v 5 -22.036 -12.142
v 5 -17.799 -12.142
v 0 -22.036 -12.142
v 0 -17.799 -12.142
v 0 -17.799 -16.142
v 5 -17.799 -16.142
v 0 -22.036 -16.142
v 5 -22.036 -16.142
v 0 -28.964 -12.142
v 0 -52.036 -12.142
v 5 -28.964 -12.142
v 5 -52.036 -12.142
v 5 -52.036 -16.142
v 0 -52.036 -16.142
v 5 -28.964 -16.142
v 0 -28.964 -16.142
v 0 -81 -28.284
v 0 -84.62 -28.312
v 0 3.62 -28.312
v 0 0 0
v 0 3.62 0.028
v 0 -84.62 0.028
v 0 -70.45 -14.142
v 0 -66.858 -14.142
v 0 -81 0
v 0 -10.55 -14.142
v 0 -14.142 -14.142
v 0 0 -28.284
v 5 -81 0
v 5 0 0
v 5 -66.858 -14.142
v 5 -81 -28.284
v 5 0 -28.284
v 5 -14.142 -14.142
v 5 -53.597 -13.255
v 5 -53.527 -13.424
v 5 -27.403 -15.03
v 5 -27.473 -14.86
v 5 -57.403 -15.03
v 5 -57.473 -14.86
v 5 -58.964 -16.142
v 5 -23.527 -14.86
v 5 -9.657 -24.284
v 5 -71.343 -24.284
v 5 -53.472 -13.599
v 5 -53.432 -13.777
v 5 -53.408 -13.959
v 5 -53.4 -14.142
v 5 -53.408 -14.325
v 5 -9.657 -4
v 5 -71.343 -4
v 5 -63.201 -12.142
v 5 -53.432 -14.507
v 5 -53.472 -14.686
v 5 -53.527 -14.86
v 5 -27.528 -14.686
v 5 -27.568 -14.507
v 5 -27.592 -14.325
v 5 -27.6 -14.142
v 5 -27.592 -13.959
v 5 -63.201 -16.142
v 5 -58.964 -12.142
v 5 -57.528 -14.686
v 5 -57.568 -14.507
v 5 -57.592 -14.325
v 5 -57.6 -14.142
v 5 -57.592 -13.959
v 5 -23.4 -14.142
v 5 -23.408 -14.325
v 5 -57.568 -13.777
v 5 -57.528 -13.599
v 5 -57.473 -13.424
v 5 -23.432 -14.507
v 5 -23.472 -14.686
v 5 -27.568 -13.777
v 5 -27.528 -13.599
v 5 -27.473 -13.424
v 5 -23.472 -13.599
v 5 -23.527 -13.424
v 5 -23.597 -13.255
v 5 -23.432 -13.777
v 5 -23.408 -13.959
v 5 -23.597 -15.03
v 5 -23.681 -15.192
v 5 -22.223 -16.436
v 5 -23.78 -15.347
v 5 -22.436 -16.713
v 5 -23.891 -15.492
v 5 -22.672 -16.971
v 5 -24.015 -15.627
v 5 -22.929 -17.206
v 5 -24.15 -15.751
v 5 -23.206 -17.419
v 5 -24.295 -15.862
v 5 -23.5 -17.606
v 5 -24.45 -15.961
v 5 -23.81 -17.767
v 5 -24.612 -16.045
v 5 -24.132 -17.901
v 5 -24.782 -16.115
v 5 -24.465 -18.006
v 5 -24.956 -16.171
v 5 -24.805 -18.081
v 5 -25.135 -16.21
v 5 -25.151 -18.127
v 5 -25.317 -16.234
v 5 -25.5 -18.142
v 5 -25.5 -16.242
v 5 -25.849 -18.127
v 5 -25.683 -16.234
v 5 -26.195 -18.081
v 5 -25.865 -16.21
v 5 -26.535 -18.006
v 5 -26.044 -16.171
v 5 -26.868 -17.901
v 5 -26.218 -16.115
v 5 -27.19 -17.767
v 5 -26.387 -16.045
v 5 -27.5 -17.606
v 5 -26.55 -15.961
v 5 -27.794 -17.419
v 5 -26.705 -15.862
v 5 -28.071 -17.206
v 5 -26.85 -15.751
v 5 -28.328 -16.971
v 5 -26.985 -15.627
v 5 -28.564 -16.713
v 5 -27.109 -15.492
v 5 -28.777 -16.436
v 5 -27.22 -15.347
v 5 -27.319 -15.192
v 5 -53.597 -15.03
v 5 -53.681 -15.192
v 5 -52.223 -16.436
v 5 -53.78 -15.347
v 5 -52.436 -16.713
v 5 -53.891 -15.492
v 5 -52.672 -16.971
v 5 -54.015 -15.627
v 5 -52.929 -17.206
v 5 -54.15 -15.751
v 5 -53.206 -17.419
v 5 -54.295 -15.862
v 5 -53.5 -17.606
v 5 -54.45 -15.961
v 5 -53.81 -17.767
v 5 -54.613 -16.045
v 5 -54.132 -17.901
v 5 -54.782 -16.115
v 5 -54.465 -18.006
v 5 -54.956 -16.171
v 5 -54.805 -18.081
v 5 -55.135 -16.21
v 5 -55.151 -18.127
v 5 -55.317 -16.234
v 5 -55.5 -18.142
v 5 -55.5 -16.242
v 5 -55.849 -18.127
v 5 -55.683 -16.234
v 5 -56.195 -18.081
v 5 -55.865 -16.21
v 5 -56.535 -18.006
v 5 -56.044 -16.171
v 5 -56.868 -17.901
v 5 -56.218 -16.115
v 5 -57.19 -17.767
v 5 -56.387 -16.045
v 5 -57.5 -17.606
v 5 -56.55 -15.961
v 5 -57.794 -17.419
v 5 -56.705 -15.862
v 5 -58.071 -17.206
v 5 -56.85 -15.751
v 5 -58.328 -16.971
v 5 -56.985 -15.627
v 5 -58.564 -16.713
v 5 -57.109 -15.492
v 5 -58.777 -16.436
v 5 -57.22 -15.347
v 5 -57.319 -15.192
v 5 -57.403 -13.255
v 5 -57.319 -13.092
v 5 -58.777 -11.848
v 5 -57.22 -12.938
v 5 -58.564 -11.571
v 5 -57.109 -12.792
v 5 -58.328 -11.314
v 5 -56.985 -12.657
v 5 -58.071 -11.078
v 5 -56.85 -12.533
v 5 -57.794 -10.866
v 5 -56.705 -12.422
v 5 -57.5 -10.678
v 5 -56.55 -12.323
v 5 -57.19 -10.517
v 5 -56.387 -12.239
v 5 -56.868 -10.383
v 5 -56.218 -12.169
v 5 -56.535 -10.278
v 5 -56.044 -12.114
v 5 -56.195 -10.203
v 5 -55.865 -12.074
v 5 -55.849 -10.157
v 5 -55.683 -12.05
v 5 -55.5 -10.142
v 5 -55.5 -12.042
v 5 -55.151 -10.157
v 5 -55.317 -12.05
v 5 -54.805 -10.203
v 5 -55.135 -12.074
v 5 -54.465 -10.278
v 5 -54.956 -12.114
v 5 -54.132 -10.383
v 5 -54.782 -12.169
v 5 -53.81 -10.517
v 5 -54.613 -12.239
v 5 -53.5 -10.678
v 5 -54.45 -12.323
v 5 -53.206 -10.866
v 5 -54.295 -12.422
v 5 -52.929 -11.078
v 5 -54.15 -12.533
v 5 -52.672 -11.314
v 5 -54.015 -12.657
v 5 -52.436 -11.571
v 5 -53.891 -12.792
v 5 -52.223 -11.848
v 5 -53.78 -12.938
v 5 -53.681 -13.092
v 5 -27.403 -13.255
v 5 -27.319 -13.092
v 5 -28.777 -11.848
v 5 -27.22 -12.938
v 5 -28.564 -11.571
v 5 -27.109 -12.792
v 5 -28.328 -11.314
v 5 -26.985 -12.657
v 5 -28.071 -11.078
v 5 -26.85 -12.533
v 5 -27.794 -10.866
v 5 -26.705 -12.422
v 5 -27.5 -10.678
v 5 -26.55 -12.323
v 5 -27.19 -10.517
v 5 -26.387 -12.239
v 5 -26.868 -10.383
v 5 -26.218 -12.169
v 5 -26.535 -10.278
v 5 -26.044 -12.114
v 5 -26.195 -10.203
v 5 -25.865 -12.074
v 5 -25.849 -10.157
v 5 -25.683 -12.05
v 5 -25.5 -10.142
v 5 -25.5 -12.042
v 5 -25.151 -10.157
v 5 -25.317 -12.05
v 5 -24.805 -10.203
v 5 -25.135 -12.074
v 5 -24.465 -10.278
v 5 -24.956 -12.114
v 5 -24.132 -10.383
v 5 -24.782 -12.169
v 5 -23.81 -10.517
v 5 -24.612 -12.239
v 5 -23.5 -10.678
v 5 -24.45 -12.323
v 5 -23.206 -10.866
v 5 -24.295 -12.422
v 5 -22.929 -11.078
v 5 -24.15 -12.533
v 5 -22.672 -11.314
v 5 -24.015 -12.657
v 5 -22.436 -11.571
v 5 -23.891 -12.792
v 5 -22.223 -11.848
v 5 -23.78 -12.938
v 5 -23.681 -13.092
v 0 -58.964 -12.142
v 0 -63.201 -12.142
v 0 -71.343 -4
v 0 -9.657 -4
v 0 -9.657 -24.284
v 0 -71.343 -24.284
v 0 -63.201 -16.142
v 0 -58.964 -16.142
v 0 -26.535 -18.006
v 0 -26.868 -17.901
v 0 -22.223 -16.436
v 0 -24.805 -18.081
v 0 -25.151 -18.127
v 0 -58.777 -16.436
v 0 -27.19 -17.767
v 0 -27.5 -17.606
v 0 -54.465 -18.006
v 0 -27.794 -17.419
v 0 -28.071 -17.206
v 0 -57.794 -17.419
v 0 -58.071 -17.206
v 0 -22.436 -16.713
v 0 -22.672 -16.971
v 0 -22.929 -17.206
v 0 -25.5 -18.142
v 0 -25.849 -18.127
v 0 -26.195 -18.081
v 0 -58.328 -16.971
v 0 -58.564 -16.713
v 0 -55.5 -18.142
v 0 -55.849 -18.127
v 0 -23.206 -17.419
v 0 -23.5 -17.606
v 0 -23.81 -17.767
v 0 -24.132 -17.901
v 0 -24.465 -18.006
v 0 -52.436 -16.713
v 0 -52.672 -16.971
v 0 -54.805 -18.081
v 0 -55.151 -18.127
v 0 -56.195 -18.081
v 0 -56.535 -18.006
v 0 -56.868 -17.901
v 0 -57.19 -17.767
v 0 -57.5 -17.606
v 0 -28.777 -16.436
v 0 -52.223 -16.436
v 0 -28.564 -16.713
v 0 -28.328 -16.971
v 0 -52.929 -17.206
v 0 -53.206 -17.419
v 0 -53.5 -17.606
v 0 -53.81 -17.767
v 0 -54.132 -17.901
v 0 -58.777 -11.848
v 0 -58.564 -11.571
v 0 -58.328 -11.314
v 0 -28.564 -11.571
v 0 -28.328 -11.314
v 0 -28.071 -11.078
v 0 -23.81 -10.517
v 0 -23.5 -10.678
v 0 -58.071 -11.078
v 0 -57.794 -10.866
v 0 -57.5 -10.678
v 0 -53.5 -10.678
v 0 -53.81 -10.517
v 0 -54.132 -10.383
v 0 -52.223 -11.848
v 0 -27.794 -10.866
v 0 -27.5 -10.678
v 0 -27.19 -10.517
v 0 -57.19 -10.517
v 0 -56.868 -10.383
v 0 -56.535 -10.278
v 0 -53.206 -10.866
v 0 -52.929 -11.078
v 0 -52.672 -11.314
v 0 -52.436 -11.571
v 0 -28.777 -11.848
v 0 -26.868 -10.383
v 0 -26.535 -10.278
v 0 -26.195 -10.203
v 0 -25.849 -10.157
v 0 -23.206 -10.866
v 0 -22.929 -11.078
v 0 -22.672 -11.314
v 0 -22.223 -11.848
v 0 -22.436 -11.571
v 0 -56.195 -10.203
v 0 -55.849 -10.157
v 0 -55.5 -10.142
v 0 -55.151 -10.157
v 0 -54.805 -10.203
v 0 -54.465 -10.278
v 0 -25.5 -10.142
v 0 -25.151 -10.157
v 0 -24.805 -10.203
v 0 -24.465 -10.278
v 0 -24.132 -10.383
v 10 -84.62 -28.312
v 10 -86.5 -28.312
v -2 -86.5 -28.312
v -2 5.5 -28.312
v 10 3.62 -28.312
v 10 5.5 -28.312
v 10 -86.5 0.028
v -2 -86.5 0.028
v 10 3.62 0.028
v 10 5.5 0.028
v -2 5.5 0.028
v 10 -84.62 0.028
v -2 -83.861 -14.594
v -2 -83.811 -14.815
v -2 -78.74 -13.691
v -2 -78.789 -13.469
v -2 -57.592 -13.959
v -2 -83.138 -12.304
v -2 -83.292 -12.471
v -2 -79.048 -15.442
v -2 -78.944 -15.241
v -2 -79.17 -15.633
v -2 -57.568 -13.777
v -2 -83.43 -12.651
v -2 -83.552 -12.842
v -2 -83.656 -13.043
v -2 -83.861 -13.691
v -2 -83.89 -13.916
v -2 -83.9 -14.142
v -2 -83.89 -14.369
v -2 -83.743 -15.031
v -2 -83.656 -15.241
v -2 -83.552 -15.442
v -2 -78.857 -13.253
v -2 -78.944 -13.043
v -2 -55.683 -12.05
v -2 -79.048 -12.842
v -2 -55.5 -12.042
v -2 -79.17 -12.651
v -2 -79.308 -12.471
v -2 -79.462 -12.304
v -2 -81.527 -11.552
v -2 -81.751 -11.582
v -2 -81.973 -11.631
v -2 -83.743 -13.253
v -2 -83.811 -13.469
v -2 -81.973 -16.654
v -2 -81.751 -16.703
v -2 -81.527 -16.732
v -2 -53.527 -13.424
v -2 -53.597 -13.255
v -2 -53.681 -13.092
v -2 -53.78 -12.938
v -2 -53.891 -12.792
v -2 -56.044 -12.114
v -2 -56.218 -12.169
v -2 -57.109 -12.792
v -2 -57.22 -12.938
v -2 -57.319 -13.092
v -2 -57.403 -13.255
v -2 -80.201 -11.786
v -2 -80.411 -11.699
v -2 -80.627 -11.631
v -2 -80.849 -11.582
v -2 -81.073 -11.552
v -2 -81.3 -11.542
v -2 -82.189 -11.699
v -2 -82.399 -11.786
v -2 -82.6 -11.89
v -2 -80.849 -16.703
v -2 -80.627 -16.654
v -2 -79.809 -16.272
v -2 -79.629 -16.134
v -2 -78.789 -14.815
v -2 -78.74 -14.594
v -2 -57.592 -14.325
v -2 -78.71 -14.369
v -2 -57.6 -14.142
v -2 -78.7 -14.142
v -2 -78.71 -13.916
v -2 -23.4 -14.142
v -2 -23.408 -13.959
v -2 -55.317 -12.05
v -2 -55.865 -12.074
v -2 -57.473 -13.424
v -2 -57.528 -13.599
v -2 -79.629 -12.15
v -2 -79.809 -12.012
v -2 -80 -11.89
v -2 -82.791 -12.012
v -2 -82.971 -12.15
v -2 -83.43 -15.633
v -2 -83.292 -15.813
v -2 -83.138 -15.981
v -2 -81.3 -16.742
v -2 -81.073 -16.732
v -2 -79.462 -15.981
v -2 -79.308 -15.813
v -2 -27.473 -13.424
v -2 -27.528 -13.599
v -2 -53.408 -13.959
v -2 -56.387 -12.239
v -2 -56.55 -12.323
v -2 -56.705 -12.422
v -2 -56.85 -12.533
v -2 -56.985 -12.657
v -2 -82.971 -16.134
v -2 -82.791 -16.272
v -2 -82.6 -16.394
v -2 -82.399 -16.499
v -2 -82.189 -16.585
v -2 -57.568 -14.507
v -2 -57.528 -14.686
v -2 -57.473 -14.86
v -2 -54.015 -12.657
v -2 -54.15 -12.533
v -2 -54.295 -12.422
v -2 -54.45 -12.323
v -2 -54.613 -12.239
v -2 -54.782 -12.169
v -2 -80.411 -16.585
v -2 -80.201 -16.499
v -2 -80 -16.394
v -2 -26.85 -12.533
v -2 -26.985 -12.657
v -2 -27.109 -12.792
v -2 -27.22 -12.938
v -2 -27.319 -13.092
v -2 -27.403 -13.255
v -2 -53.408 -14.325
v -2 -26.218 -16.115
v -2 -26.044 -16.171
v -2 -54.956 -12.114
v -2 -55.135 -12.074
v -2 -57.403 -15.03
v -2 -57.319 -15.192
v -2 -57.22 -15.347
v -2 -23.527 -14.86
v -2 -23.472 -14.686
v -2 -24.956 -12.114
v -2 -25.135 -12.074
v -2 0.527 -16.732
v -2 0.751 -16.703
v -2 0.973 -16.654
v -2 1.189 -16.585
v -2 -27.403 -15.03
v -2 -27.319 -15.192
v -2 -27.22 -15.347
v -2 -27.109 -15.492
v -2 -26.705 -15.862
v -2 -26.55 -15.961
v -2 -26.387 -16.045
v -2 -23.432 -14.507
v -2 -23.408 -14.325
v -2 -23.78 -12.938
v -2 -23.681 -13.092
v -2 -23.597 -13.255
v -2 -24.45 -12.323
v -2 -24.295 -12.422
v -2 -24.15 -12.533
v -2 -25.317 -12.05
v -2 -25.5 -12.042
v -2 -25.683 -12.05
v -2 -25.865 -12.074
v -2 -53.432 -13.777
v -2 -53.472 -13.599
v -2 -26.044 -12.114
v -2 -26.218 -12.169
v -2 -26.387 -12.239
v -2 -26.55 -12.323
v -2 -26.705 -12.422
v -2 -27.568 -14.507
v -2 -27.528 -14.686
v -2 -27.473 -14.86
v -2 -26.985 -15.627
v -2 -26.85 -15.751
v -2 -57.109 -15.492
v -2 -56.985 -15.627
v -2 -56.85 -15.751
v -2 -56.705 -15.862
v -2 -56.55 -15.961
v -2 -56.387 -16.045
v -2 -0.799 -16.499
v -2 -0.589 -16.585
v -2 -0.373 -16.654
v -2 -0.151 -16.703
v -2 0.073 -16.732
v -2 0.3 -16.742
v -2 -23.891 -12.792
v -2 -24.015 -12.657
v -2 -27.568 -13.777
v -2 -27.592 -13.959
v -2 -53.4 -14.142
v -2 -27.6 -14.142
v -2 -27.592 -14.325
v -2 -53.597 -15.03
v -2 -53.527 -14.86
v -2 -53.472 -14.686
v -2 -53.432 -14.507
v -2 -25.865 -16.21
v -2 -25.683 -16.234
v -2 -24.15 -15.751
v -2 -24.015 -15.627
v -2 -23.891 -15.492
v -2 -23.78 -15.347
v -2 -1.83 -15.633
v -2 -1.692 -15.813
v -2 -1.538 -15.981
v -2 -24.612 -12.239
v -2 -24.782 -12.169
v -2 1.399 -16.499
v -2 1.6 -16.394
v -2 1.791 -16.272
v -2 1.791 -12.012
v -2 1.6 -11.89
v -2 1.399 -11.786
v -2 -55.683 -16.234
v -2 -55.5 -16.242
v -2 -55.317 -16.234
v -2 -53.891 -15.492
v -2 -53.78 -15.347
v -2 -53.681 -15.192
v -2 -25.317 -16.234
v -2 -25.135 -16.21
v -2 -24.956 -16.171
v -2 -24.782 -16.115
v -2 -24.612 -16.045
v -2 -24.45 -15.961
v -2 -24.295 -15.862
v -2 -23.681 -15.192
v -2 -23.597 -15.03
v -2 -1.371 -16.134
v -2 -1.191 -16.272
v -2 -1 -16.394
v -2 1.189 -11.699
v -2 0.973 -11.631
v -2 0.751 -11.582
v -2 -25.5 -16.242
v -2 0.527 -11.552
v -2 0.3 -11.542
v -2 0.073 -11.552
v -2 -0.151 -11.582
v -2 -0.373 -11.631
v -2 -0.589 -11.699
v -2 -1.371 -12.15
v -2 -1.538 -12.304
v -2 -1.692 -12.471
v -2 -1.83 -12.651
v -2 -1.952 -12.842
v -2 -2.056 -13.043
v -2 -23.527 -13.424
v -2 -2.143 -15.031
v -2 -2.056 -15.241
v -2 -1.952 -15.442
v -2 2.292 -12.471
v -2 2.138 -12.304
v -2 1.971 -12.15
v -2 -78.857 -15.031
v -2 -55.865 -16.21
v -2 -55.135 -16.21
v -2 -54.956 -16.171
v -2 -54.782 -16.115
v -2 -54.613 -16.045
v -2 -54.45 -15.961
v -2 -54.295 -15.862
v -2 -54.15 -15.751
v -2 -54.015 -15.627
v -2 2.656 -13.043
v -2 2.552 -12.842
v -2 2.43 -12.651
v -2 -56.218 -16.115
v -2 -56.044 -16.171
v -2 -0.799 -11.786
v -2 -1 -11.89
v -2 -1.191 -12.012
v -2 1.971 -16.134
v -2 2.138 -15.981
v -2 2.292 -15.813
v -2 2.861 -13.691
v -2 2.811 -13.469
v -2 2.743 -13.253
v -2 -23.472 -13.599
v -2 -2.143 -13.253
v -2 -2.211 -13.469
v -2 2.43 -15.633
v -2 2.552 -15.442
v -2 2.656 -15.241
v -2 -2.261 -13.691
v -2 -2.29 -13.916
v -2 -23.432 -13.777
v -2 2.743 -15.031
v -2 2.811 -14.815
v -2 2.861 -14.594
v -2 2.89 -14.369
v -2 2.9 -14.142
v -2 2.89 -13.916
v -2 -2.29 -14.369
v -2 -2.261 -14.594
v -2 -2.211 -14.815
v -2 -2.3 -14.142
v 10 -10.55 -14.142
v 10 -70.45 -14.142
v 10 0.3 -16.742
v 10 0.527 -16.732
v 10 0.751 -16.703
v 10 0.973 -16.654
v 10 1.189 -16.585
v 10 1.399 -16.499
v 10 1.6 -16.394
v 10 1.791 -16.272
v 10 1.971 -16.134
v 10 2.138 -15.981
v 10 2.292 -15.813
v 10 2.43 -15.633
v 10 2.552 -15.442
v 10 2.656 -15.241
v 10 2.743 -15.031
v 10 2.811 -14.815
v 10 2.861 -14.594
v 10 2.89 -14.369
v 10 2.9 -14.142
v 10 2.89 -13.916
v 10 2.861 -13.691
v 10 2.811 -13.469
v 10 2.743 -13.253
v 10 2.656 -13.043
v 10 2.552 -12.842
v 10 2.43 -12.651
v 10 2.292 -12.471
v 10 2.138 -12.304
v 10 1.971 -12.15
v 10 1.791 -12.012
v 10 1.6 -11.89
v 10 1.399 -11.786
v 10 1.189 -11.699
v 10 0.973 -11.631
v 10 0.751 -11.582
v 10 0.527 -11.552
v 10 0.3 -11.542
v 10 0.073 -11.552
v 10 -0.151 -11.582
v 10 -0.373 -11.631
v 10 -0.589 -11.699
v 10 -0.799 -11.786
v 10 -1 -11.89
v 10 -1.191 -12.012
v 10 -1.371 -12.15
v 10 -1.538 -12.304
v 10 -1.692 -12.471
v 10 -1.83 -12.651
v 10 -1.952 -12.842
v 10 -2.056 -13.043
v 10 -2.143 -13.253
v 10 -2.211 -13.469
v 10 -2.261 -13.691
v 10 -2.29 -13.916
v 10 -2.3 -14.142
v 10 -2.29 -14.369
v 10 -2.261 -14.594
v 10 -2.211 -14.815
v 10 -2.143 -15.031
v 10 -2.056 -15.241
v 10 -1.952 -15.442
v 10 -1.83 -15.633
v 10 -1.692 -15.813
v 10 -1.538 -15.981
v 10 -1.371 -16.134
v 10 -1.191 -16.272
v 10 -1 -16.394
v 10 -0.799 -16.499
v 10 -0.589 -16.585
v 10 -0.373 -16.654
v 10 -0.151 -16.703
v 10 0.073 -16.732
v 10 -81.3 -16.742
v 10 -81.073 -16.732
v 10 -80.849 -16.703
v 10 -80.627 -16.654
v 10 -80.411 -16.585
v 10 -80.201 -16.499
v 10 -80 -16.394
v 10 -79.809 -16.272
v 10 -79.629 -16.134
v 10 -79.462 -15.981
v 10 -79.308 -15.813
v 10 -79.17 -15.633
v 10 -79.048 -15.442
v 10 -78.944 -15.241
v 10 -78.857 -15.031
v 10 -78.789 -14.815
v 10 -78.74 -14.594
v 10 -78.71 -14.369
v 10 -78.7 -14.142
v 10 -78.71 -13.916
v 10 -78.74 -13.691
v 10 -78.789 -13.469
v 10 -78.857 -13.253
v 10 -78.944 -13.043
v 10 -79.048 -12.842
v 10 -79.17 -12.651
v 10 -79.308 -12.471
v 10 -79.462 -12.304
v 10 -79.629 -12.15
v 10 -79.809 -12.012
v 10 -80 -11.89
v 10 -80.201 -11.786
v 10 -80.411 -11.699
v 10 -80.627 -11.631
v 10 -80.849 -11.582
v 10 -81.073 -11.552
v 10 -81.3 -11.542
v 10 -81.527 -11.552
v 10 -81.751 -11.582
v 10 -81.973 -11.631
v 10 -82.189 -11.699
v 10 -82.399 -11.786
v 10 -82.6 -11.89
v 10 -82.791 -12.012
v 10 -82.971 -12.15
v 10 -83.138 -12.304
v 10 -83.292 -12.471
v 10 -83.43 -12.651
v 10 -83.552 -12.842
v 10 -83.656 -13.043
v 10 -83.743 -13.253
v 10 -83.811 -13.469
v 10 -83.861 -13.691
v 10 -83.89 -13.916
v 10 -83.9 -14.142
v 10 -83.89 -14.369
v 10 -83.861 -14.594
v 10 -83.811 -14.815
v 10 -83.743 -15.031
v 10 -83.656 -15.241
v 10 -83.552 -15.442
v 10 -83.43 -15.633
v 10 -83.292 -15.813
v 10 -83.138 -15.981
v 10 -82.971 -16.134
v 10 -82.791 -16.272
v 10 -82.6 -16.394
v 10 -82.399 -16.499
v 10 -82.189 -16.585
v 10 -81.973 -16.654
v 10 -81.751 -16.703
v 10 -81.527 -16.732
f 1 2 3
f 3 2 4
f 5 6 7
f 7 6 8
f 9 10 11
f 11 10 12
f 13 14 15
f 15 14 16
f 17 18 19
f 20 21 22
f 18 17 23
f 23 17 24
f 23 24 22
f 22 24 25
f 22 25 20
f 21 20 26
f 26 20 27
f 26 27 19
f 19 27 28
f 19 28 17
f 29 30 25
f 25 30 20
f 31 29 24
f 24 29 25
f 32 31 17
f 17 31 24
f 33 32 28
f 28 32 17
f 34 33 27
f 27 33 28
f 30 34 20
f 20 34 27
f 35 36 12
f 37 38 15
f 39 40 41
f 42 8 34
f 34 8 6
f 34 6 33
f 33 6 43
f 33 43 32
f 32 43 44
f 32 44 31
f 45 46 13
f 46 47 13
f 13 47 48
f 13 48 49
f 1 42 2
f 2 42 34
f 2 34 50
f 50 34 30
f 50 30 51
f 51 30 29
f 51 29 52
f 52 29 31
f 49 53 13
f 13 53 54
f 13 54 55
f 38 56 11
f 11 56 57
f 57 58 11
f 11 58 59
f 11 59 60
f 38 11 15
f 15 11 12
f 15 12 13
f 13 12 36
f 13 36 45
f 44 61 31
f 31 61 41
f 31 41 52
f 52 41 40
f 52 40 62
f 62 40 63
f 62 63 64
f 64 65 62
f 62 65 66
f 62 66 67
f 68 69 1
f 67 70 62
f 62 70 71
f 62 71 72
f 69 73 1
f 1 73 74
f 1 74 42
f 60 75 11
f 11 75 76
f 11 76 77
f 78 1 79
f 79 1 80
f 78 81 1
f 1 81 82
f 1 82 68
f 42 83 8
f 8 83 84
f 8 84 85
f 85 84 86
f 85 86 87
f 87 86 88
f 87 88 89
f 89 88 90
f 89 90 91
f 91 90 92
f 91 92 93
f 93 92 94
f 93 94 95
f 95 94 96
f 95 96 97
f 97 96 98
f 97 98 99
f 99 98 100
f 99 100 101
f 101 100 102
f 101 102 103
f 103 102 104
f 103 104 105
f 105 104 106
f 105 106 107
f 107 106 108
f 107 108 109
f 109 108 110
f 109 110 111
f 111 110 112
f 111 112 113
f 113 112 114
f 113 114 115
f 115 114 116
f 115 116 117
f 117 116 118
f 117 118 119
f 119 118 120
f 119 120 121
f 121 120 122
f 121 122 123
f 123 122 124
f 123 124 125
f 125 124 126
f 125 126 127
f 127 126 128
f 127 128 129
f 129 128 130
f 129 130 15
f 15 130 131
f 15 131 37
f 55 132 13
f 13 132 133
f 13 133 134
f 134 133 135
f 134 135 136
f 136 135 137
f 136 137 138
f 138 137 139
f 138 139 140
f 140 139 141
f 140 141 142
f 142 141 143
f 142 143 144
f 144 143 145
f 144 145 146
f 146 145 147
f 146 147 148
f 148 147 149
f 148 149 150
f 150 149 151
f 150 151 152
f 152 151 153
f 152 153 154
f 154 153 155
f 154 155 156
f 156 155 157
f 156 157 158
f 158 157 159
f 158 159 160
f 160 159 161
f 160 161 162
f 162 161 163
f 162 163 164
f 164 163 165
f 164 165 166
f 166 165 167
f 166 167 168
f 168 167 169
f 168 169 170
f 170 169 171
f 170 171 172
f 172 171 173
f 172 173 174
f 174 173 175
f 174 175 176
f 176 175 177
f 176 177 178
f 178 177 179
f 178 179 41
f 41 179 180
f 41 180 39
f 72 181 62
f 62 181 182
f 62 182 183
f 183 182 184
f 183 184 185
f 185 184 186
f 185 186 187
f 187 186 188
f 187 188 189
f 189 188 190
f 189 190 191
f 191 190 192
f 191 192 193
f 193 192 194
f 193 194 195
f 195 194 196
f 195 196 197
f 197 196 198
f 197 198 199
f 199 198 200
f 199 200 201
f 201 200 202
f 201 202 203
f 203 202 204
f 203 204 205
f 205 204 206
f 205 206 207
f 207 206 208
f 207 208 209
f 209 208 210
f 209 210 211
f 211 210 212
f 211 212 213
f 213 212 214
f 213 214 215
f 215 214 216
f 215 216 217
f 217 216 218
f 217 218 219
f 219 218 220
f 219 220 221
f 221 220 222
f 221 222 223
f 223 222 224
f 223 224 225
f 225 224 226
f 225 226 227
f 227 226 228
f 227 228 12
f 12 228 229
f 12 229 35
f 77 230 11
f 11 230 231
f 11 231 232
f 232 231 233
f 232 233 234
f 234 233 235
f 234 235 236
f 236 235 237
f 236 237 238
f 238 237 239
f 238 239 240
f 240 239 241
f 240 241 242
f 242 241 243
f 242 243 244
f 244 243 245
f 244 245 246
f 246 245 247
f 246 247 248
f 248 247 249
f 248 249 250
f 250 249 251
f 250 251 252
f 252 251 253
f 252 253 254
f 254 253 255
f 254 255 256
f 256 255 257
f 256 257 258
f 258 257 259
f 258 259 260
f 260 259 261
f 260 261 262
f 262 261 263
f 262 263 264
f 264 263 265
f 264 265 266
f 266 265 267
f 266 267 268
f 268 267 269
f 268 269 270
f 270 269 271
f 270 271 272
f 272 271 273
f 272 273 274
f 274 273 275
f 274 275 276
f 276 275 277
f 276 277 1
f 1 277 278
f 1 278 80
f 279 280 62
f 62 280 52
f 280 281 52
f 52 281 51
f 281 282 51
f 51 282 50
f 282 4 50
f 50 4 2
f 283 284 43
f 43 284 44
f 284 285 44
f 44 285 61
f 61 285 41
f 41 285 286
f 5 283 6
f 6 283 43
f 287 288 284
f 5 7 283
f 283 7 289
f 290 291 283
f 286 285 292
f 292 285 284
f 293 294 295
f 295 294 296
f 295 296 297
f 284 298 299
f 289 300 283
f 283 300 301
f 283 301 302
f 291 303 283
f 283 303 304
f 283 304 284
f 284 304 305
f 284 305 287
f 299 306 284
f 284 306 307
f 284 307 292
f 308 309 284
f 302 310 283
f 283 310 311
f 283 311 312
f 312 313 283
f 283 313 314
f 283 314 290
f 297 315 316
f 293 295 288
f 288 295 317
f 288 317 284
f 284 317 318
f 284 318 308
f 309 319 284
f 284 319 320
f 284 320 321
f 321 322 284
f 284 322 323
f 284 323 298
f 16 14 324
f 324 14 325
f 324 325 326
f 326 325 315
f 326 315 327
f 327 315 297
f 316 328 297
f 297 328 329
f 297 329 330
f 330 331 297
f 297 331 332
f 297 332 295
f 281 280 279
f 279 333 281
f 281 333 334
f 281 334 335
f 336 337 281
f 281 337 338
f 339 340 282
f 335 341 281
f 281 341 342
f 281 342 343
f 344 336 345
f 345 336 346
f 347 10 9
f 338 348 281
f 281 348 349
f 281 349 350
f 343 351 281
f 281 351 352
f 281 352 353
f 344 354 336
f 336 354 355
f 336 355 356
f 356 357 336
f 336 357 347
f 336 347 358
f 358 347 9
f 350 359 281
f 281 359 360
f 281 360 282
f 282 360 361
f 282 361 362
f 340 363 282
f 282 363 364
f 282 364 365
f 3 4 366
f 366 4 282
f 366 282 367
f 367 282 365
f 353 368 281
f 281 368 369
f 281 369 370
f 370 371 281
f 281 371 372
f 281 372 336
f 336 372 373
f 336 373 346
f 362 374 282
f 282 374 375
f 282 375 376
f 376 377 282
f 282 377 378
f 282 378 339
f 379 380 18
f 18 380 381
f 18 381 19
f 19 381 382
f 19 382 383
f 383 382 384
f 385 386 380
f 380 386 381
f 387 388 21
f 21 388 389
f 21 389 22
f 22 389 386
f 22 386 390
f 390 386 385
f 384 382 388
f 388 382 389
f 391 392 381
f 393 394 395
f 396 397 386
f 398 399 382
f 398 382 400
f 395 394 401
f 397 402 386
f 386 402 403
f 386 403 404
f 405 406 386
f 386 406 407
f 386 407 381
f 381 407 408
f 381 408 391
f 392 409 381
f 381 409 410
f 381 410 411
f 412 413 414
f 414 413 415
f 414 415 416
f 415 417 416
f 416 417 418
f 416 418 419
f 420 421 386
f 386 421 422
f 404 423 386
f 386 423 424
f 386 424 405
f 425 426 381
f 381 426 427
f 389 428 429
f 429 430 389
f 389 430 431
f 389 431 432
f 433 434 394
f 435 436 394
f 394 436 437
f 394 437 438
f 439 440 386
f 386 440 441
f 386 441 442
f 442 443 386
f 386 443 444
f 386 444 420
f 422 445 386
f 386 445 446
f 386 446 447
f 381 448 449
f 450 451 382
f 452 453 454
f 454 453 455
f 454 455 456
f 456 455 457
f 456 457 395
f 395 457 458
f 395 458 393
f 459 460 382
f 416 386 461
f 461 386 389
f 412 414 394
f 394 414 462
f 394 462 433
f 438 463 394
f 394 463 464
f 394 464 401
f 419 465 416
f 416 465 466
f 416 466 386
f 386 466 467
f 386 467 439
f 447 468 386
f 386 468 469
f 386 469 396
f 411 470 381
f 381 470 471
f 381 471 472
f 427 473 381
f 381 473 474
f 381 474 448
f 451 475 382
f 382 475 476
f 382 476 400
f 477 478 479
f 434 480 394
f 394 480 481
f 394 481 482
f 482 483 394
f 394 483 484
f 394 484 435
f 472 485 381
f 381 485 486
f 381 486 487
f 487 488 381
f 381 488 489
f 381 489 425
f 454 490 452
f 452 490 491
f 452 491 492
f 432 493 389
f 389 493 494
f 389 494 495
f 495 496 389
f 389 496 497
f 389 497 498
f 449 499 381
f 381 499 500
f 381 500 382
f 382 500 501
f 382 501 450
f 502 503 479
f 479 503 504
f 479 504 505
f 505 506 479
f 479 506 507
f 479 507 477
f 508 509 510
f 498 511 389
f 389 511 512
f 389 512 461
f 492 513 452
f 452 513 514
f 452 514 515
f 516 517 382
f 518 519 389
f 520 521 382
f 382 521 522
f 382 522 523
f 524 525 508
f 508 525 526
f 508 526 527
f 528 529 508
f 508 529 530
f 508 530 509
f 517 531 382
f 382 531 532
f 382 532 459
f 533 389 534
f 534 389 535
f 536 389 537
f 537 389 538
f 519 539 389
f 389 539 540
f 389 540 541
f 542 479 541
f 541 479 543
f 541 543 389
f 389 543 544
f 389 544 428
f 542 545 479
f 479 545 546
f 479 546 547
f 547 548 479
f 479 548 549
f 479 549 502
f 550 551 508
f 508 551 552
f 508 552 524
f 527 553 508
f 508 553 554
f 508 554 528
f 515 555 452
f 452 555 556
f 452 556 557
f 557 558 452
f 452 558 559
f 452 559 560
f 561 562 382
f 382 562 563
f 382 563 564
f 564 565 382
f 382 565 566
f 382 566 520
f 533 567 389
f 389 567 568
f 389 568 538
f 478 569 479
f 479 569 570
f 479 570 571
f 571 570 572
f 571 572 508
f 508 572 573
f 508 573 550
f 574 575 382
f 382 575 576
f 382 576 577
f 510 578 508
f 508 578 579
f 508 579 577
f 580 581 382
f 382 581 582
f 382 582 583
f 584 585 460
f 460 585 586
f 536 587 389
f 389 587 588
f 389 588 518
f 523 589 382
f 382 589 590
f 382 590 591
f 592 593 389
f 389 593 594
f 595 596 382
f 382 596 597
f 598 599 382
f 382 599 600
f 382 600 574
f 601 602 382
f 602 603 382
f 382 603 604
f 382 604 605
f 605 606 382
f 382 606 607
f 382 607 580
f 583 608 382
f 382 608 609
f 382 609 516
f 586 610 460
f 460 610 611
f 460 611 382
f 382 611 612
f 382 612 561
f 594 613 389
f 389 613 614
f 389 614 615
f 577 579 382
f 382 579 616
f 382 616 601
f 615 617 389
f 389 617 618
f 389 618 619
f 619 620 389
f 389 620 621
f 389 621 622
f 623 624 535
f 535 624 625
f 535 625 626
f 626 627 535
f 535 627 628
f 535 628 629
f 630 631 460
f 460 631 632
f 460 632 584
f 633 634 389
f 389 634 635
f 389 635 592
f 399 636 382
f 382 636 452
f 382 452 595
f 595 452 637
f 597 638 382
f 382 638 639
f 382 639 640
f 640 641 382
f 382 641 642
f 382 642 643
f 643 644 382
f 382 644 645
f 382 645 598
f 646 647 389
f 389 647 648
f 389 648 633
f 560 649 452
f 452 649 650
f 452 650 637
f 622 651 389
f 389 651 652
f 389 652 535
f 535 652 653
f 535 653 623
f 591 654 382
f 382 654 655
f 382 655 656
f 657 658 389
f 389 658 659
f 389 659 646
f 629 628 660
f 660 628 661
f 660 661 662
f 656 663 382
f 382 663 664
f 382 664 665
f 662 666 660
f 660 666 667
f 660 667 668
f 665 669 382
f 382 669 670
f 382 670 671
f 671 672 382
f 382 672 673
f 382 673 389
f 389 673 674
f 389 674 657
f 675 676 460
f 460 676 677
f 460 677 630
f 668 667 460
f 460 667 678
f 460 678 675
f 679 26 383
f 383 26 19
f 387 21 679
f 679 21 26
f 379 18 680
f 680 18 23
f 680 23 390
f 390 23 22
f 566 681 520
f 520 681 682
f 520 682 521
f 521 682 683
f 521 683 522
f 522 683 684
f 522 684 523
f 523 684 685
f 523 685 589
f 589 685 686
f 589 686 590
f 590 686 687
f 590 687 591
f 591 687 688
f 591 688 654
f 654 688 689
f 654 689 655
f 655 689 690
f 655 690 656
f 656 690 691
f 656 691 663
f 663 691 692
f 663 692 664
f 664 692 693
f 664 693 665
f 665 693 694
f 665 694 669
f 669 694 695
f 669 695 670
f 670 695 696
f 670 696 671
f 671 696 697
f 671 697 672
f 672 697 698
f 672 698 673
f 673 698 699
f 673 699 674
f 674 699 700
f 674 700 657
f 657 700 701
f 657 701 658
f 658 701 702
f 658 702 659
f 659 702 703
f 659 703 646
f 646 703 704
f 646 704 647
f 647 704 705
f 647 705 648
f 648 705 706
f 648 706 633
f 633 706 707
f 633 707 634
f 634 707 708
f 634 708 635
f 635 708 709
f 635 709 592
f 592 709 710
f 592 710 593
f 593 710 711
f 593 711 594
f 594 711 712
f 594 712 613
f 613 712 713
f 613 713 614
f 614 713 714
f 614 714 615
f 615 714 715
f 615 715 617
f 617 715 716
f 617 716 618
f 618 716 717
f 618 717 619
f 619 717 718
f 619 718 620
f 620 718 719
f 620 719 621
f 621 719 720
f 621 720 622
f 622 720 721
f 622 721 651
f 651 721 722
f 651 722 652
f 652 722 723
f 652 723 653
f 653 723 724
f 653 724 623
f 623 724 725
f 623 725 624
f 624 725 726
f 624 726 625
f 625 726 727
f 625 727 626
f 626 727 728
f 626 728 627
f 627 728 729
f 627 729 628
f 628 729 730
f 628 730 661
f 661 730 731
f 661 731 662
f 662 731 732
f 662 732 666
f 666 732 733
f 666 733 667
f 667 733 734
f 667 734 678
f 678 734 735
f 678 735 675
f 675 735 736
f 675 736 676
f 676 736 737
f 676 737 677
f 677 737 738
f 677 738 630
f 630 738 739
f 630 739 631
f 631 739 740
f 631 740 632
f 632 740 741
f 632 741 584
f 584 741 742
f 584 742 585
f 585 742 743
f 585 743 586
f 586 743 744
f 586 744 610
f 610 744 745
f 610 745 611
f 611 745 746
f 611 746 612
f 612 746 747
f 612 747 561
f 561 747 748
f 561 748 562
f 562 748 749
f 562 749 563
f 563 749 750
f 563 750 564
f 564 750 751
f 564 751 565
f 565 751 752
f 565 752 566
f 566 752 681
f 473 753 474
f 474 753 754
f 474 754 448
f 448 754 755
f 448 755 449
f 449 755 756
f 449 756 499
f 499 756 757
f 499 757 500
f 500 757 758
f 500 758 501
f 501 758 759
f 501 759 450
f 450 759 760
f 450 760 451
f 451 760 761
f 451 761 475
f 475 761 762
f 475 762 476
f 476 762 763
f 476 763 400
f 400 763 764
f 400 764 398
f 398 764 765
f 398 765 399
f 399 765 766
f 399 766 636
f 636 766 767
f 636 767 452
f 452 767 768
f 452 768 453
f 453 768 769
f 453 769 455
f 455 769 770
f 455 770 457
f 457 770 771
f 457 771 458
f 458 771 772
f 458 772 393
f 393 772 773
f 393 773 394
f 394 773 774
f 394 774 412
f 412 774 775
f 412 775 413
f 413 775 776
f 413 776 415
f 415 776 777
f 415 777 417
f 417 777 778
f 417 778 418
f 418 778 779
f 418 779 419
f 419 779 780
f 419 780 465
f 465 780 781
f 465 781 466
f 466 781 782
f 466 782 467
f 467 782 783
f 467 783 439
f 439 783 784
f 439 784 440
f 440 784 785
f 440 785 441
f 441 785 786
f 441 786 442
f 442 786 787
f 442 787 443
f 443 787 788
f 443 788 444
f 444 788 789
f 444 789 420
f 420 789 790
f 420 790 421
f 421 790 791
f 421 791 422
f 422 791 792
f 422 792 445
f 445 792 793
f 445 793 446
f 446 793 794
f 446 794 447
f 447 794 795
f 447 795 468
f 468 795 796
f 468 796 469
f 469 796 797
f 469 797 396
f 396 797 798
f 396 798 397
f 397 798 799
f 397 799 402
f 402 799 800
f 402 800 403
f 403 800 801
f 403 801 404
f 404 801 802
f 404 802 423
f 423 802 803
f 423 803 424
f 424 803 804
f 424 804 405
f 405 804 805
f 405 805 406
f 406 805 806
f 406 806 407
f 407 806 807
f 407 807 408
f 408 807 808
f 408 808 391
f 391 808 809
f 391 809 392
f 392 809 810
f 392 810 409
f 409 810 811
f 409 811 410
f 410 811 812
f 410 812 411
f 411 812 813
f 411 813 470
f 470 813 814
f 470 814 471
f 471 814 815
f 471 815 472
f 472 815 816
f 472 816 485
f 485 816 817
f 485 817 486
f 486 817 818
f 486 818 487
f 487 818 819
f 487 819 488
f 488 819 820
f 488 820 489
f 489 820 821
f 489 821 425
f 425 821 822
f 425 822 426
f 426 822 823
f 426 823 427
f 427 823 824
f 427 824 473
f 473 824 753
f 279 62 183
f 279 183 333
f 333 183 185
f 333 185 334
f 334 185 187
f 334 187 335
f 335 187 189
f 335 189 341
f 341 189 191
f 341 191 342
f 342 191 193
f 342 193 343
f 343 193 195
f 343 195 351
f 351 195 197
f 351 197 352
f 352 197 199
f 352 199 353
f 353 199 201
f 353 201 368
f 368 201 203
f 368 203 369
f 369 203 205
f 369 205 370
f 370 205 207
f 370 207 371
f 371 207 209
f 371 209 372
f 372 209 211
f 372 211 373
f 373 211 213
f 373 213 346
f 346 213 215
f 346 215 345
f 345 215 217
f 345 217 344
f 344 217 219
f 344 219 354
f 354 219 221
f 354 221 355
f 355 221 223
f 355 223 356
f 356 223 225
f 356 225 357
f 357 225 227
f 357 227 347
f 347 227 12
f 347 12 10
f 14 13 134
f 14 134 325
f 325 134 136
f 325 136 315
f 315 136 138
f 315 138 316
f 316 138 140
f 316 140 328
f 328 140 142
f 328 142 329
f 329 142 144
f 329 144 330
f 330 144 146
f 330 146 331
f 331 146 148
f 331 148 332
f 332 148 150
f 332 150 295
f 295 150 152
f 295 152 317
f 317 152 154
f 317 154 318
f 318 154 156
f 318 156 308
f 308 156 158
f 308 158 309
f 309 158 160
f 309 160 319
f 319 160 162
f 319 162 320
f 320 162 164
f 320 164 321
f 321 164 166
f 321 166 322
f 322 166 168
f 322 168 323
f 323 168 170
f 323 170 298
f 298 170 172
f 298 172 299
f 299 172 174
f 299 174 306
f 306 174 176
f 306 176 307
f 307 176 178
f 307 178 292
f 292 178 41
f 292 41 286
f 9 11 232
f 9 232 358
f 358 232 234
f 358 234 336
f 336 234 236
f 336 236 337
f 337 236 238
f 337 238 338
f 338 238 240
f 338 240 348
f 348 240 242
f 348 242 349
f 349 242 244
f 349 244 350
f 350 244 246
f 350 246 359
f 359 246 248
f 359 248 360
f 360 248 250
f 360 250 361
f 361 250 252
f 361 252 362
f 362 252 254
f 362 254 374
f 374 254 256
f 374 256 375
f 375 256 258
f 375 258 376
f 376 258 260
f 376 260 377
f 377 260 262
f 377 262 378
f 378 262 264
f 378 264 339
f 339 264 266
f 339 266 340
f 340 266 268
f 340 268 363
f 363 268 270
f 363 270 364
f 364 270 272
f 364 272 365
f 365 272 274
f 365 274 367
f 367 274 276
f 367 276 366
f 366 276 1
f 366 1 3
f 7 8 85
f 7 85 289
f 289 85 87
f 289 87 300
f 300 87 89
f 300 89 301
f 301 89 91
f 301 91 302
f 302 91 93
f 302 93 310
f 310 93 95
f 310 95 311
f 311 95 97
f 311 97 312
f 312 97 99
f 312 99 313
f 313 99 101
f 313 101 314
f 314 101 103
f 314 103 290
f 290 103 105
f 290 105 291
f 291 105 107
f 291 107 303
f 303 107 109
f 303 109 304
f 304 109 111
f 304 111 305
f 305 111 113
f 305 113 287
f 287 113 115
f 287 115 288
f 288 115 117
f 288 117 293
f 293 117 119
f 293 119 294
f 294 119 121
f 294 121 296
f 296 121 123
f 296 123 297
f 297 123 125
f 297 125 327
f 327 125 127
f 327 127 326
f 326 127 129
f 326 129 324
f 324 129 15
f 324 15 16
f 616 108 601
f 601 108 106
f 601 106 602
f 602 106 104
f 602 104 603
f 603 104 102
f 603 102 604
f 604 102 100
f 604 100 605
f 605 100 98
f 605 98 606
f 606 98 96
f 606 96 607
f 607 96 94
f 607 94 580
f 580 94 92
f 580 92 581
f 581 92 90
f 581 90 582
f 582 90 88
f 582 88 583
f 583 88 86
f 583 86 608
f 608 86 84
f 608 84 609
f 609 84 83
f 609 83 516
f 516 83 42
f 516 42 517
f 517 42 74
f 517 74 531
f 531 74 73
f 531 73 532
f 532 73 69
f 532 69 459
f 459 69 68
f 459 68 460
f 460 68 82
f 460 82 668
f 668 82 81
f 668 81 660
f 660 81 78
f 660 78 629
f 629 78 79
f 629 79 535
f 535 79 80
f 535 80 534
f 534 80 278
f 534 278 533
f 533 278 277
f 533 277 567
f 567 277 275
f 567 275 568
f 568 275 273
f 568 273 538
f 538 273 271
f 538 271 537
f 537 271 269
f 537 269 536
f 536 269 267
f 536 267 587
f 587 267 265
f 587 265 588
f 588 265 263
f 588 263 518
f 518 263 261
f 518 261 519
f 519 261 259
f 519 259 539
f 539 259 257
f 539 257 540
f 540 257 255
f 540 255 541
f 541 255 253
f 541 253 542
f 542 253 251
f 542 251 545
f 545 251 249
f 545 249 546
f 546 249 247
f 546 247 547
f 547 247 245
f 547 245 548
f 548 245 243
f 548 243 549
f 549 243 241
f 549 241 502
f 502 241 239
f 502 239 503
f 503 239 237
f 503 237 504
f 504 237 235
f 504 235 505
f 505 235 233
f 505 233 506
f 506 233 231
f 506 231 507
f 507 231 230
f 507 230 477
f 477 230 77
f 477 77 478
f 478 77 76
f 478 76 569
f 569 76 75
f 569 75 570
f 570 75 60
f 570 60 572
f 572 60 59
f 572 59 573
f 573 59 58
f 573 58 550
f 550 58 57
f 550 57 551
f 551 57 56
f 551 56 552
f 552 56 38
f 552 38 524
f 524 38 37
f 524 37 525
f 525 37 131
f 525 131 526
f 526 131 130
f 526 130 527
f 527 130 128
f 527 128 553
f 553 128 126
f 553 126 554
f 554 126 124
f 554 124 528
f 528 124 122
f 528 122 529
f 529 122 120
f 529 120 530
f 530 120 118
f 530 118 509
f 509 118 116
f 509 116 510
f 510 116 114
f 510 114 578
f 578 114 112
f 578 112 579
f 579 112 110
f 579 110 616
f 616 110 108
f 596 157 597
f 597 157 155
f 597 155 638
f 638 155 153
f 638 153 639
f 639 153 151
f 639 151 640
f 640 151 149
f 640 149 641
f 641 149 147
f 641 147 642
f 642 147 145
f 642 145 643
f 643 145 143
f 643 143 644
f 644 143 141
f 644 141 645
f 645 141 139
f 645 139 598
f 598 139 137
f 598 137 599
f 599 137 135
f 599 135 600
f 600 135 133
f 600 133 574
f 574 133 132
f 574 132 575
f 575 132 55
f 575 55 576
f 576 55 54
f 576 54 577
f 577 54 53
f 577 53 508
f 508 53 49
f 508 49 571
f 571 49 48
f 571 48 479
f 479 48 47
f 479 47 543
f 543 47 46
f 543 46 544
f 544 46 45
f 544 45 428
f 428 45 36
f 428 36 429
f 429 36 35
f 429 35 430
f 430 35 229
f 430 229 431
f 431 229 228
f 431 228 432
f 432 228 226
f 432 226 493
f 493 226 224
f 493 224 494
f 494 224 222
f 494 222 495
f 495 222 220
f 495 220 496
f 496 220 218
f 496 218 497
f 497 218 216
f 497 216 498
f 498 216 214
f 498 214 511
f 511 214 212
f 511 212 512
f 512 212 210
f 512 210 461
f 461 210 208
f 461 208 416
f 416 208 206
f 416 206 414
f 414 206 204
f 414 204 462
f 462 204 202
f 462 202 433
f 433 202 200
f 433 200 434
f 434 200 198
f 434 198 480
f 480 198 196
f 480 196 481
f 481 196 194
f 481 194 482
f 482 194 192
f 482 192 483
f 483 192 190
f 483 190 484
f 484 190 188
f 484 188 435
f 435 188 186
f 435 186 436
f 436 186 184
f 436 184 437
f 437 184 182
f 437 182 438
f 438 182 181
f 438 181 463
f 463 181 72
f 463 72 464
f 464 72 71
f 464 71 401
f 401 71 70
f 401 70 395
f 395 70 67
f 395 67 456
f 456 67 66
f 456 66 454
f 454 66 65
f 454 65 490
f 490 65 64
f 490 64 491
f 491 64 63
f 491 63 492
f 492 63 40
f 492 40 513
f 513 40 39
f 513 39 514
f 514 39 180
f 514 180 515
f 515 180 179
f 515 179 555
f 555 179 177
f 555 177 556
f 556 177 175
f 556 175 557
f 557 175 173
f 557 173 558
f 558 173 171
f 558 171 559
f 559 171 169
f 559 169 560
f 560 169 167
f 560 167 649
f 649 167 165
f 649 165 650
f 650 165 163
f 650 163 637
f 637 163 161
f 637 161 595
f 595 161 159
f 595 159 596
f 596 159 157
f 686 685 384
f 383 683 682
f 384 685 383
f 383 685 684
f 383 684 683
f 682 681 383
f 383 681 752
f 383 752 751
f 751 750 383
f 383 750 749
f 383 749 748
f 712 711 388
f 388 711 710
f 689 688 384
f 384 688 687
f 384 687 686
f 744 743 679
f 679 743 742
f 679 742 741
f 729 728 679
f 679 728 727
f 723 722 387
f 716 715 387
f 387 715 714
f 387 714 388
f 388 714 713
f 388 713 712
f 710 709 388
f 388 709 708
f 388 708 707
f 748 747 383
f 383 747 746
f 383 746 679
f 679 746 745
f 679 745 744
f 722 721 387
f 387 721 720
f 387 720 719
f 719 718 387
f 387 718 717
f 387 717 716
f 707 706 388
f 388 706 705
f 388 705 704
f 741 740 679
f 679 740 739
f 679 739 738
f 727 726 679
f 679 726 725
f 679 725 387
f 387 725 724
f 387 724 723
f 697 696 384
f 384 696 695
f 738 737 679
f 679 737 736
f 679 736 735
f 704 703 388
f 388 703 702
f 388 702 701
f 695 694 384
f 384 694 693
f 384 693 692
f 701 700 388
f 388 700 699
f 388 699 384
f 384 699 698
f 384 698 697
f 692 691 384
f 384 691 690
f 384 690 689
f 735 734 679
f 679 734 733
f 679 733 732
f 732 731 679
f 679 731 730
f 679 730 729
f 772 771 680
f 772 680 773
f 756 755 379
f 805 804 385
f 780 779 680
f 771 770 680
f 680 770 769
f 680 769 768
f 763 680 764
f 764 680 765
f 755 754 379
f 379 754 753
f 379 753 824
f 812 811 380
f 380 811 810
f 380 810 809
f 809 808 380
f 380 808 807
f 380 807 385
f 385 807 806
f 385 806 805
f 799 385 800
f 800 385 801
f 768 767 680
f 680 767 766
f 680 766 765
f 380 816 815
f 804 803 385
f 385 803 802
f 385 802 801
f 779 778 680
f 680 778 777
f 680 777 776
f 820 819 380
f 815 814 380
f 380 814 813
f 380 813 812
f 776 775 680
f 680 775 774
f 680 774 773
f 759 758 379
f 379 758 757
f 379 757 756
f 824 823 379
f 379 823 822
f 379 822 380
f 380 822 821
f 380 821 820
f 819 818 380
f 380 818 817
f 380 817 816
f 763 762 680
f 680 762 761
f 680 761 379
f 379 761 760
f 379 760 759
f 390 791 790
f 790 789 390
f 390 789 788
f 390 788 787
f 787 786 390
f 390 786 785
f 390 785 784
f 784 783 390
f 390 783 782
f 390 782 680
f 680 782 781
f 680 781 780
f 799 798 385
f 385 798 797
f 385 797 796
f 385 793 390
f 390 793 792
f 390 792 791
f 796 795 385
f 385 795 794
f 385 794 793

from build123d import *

# Parameters (mm, degrees)
BOSS_EXTRUDE1_DEPTH   = 5
CUT_EXTRUDE1_DEPTH    = 86.941840799
BOSS_EXTRUDE6_DEPTH   = 5
BOSS_EXTRUDE6_2_DEPTH = 5
SKETCH4_W             = 28.34
SKETCH4_H             = 92
BOSS_EXTRUDE7_DEPTH   = 2
SKETCH5_R             = 2.6
CUT_EXTRUDE2_DEPTH    = 92.284319703
BOSS_EXTRUDE8_REACH   = 93.284
SKETCH6_R             = 4
SKETCH7_R             = 2.1
CUT_EXTRUDE4_DEPTH    = 92.284319703
BOSS_EXTRUDE9_START   = 5
SKETCH8_R             = 2.6
BOSS_EXTRUDE9_DEPTH   = 5


with BuildPart() as part:
    # Sketch1 → Boss-Extrude1 (new body)
    with BuildSketch(Plane(origin=(0, 0, 0), x_dir=(0, 0, -1), z_dir=(1, 0, 0))):
        Polygon((0, 0), (0, -81), (14.142135624, -66.857864376), (28.284271247, -81), (28.284271247, 0), (14.142135624, -14.142135624), align=None)
    extrude(amount=BOSS_EXTRUDE1_DEPTH)

    # Sketch2 → Cut-Extrude1 (cut, through all)
    with BuildSketch(Plane(origin=(5, 0, 0), x_dir=(0, 0, -1), z_dir=(1, 0, 0))):
        Polygon((4, -71.343145751), (12.142135624, -63.201010127), (12.142135624, -17.798989873), (4, -9.656854249), align=None)
        Polygon((16.142135624, -17.798989873), (16.142135624, -63.201010127), (24.284271247, -71.343145751), (24.284271247, -9.656854249), align=None)
    extrude(amount=-CUT_EXTRUDE1_DEPTH, mode=Mode.SUBTRACT)



with BuildPart() as body_2:
    # Sketch3 → Boss-Extrude6 (new body)
    with BuildSketch(Plane(origin=(5, 0, 0), x_dir=(0, 0, -1), z_dir=(1, 0, 0))):
        Polygon((-0.027864376, 3.619966825), (1.796051224, 1.796051224), (14.142135624, -10.550033175), (26.488220023, 1.796051224), (28.312135624, 3.619966825), (28.312135624, 5.5), (-0.027864376, 5.5), align=None)
    extrude(amount=-BOSS_EXTRUDE6_DEPTH)


with BuildPart() as body_3:
    # Sketch3 → Boss-Extrude6 2 (new body)
    with BuildSketch(Plane(origin=(5, 0, 0), x_dir=(0, 0, -1), z_dir=(1, 0, 0))):
        Polygon((14.142135624, -70.449966825), (1.796051224, -82.796051224), (-0.027864376, -84.619966825), (-0.027864376, -86.5), (28.312135624, -86.5), (28.312135624, -84.619966825), (26.488220023, -82.796051224), align=None)
    extrude(amount=-BOSS_EXTRUDE6_2_DEPTH)


with BuildPart() as part_1:
    add(part.part)

    add(body_2.part)  # Boss-Extrude7 merges body 2

    add(body_3.part)  # Boss-Extrude7 merges body 3
    # Sketch4 → Boss-Extrude7 (add)
    with BuildSketch(Plane.ZY):
        with Locations((-14.142135624, -40.5)):
            Rectangle(SKETCH4_W, SKETCH4_H)
    extrude(amount=BOSS_EXTRUDE7_DEPTH)

    # Sketch5 → Cut-Extrude2 (cut, through all)
    with BuildSketch(Plane(origin=(5, 0, 0), x_dir=(0, 0, -1), z_dir=(1, 0, 0))):
        with Locations((14.142135624, 0.3)):
            Circle(SKETCH5_R)
        with Locations(Location((14.142135624, -81.3, 0), (0, 0, 180))):
            Circle(SKETCH5_R)
    extrude(amount=-CUT_EXTRUDE2_DEPTH, mode=Mode.SUBTRACT)

    # Sketch6 → Boss-Extrude8 (add, up to next)
    with BuildSketch(Plane(origin=(5, 0, 0), x_dir=(0, 0, -1), z_dir=(1, 0, 0)), mode=Mode.PRIVATE) as boss_extrude8_sk1:
        with Locations((14.142135624, -55.5)):
            Circle(SKETCH6_R)
    boss_extrude8_tool1 = extrude(boss_extrude8_sk1.sketch, amount=-BOSS_EXTRUDE8_REACH, mode=Mode.PRIVATE) - part_1.part
    # Sketch6 → Boss-Extrude8 (add, up to next)
    with BuildSketch(Plane(origin=(5, 0, 0), x_dir=(0, 0, -1), z_dir=(1, 0, 0)), mode=Mode.PRIVATE) as boss_extrude8_sk2:
        with Locations((14.142135624, -25.5)):
            Circle(SKETCH6_R)
    boss_extrude8_tool2 = extrude(boss_extrude8_sk2.sketch, amount=-BOSS_EXTRUDE8_REACH, mode=Mode.PRIVATE) - part_1.part
    add(boss_extrude8_tool1.solids().sort_by_distance((5, -55.5, -14.142136))[0])
    add(boss_extrude8_tool1.solids().sort_by_distance((5, -55.5, -14.142136))[1])
    add(boss_extrude8_tool2.solids().sort_by_distance((5, -25.5, -14.142136))[0])
    add(boss_extrude8_tool2.solids().sort_by_distance((5, -25.5, -14.142136))[1])

    # Sketch7 → Cut-Extrude4 (cut, through all)
    with BuildSketch(Plane(origin=(5, 0, 0), x_dir=(0, 0, -1), z_dir=(1, 0, 0))):
        with Locations((14.142135624, -25.5)):
            Circle(SKETCH7_R)
        with Locations((14.142135624, -55.5)):
            Circle(SKETCH7_R)
    extrude(amount=-CUT_EXTRUDE4_DEPTH, mode=Mode.SUBTRACT)

    # Sketch8 → Boss-Extrude9 (add)
    # profile 1 of 2: a face of its own
    with BuildSketch(Plane(origin=(5, 0, 0), x_dir=(0, 0, -1), z_dir=(1, 0, 0)).offset(BOSS_EXTRUDE9_START)):
        Polygon((28.312135624, 5.5), (28.312135624, 3.619966825), (14.142135624, -10.550033175), (-0.027864376, 3.619966825), (-0.027864376, 5.5), align=None)
        with Locations((14.142135624, 0.3)):
            Circle(SKETCH8_R, mode=Mode.SUBTRACT)
    # profile 2 of 2: a face of its own
    with BuildSketch(Plane(origin=(5, 0, 0), x_dir=(0, 0, -1), z_dir=(1, 0, 0)).offset(BOSS_EXTRUDE9_START)):
        Polygon((28.312135624, -86.5), (28.312135624, -84.619966825), (14.142135624, -70.449966825), (-0.027864376, -84.619966825), (-0.027864376, -86.5), align=None)
        with Locations(Location((14.142135624, -81.3, 0), (0, 0, 180))):
            Circle(SKETCH8_R, mode=Mode.SUBTRACT)
    extrude(amount=-BOSS_EXTRUDE9_DEPTH)


solid = part_1.part
